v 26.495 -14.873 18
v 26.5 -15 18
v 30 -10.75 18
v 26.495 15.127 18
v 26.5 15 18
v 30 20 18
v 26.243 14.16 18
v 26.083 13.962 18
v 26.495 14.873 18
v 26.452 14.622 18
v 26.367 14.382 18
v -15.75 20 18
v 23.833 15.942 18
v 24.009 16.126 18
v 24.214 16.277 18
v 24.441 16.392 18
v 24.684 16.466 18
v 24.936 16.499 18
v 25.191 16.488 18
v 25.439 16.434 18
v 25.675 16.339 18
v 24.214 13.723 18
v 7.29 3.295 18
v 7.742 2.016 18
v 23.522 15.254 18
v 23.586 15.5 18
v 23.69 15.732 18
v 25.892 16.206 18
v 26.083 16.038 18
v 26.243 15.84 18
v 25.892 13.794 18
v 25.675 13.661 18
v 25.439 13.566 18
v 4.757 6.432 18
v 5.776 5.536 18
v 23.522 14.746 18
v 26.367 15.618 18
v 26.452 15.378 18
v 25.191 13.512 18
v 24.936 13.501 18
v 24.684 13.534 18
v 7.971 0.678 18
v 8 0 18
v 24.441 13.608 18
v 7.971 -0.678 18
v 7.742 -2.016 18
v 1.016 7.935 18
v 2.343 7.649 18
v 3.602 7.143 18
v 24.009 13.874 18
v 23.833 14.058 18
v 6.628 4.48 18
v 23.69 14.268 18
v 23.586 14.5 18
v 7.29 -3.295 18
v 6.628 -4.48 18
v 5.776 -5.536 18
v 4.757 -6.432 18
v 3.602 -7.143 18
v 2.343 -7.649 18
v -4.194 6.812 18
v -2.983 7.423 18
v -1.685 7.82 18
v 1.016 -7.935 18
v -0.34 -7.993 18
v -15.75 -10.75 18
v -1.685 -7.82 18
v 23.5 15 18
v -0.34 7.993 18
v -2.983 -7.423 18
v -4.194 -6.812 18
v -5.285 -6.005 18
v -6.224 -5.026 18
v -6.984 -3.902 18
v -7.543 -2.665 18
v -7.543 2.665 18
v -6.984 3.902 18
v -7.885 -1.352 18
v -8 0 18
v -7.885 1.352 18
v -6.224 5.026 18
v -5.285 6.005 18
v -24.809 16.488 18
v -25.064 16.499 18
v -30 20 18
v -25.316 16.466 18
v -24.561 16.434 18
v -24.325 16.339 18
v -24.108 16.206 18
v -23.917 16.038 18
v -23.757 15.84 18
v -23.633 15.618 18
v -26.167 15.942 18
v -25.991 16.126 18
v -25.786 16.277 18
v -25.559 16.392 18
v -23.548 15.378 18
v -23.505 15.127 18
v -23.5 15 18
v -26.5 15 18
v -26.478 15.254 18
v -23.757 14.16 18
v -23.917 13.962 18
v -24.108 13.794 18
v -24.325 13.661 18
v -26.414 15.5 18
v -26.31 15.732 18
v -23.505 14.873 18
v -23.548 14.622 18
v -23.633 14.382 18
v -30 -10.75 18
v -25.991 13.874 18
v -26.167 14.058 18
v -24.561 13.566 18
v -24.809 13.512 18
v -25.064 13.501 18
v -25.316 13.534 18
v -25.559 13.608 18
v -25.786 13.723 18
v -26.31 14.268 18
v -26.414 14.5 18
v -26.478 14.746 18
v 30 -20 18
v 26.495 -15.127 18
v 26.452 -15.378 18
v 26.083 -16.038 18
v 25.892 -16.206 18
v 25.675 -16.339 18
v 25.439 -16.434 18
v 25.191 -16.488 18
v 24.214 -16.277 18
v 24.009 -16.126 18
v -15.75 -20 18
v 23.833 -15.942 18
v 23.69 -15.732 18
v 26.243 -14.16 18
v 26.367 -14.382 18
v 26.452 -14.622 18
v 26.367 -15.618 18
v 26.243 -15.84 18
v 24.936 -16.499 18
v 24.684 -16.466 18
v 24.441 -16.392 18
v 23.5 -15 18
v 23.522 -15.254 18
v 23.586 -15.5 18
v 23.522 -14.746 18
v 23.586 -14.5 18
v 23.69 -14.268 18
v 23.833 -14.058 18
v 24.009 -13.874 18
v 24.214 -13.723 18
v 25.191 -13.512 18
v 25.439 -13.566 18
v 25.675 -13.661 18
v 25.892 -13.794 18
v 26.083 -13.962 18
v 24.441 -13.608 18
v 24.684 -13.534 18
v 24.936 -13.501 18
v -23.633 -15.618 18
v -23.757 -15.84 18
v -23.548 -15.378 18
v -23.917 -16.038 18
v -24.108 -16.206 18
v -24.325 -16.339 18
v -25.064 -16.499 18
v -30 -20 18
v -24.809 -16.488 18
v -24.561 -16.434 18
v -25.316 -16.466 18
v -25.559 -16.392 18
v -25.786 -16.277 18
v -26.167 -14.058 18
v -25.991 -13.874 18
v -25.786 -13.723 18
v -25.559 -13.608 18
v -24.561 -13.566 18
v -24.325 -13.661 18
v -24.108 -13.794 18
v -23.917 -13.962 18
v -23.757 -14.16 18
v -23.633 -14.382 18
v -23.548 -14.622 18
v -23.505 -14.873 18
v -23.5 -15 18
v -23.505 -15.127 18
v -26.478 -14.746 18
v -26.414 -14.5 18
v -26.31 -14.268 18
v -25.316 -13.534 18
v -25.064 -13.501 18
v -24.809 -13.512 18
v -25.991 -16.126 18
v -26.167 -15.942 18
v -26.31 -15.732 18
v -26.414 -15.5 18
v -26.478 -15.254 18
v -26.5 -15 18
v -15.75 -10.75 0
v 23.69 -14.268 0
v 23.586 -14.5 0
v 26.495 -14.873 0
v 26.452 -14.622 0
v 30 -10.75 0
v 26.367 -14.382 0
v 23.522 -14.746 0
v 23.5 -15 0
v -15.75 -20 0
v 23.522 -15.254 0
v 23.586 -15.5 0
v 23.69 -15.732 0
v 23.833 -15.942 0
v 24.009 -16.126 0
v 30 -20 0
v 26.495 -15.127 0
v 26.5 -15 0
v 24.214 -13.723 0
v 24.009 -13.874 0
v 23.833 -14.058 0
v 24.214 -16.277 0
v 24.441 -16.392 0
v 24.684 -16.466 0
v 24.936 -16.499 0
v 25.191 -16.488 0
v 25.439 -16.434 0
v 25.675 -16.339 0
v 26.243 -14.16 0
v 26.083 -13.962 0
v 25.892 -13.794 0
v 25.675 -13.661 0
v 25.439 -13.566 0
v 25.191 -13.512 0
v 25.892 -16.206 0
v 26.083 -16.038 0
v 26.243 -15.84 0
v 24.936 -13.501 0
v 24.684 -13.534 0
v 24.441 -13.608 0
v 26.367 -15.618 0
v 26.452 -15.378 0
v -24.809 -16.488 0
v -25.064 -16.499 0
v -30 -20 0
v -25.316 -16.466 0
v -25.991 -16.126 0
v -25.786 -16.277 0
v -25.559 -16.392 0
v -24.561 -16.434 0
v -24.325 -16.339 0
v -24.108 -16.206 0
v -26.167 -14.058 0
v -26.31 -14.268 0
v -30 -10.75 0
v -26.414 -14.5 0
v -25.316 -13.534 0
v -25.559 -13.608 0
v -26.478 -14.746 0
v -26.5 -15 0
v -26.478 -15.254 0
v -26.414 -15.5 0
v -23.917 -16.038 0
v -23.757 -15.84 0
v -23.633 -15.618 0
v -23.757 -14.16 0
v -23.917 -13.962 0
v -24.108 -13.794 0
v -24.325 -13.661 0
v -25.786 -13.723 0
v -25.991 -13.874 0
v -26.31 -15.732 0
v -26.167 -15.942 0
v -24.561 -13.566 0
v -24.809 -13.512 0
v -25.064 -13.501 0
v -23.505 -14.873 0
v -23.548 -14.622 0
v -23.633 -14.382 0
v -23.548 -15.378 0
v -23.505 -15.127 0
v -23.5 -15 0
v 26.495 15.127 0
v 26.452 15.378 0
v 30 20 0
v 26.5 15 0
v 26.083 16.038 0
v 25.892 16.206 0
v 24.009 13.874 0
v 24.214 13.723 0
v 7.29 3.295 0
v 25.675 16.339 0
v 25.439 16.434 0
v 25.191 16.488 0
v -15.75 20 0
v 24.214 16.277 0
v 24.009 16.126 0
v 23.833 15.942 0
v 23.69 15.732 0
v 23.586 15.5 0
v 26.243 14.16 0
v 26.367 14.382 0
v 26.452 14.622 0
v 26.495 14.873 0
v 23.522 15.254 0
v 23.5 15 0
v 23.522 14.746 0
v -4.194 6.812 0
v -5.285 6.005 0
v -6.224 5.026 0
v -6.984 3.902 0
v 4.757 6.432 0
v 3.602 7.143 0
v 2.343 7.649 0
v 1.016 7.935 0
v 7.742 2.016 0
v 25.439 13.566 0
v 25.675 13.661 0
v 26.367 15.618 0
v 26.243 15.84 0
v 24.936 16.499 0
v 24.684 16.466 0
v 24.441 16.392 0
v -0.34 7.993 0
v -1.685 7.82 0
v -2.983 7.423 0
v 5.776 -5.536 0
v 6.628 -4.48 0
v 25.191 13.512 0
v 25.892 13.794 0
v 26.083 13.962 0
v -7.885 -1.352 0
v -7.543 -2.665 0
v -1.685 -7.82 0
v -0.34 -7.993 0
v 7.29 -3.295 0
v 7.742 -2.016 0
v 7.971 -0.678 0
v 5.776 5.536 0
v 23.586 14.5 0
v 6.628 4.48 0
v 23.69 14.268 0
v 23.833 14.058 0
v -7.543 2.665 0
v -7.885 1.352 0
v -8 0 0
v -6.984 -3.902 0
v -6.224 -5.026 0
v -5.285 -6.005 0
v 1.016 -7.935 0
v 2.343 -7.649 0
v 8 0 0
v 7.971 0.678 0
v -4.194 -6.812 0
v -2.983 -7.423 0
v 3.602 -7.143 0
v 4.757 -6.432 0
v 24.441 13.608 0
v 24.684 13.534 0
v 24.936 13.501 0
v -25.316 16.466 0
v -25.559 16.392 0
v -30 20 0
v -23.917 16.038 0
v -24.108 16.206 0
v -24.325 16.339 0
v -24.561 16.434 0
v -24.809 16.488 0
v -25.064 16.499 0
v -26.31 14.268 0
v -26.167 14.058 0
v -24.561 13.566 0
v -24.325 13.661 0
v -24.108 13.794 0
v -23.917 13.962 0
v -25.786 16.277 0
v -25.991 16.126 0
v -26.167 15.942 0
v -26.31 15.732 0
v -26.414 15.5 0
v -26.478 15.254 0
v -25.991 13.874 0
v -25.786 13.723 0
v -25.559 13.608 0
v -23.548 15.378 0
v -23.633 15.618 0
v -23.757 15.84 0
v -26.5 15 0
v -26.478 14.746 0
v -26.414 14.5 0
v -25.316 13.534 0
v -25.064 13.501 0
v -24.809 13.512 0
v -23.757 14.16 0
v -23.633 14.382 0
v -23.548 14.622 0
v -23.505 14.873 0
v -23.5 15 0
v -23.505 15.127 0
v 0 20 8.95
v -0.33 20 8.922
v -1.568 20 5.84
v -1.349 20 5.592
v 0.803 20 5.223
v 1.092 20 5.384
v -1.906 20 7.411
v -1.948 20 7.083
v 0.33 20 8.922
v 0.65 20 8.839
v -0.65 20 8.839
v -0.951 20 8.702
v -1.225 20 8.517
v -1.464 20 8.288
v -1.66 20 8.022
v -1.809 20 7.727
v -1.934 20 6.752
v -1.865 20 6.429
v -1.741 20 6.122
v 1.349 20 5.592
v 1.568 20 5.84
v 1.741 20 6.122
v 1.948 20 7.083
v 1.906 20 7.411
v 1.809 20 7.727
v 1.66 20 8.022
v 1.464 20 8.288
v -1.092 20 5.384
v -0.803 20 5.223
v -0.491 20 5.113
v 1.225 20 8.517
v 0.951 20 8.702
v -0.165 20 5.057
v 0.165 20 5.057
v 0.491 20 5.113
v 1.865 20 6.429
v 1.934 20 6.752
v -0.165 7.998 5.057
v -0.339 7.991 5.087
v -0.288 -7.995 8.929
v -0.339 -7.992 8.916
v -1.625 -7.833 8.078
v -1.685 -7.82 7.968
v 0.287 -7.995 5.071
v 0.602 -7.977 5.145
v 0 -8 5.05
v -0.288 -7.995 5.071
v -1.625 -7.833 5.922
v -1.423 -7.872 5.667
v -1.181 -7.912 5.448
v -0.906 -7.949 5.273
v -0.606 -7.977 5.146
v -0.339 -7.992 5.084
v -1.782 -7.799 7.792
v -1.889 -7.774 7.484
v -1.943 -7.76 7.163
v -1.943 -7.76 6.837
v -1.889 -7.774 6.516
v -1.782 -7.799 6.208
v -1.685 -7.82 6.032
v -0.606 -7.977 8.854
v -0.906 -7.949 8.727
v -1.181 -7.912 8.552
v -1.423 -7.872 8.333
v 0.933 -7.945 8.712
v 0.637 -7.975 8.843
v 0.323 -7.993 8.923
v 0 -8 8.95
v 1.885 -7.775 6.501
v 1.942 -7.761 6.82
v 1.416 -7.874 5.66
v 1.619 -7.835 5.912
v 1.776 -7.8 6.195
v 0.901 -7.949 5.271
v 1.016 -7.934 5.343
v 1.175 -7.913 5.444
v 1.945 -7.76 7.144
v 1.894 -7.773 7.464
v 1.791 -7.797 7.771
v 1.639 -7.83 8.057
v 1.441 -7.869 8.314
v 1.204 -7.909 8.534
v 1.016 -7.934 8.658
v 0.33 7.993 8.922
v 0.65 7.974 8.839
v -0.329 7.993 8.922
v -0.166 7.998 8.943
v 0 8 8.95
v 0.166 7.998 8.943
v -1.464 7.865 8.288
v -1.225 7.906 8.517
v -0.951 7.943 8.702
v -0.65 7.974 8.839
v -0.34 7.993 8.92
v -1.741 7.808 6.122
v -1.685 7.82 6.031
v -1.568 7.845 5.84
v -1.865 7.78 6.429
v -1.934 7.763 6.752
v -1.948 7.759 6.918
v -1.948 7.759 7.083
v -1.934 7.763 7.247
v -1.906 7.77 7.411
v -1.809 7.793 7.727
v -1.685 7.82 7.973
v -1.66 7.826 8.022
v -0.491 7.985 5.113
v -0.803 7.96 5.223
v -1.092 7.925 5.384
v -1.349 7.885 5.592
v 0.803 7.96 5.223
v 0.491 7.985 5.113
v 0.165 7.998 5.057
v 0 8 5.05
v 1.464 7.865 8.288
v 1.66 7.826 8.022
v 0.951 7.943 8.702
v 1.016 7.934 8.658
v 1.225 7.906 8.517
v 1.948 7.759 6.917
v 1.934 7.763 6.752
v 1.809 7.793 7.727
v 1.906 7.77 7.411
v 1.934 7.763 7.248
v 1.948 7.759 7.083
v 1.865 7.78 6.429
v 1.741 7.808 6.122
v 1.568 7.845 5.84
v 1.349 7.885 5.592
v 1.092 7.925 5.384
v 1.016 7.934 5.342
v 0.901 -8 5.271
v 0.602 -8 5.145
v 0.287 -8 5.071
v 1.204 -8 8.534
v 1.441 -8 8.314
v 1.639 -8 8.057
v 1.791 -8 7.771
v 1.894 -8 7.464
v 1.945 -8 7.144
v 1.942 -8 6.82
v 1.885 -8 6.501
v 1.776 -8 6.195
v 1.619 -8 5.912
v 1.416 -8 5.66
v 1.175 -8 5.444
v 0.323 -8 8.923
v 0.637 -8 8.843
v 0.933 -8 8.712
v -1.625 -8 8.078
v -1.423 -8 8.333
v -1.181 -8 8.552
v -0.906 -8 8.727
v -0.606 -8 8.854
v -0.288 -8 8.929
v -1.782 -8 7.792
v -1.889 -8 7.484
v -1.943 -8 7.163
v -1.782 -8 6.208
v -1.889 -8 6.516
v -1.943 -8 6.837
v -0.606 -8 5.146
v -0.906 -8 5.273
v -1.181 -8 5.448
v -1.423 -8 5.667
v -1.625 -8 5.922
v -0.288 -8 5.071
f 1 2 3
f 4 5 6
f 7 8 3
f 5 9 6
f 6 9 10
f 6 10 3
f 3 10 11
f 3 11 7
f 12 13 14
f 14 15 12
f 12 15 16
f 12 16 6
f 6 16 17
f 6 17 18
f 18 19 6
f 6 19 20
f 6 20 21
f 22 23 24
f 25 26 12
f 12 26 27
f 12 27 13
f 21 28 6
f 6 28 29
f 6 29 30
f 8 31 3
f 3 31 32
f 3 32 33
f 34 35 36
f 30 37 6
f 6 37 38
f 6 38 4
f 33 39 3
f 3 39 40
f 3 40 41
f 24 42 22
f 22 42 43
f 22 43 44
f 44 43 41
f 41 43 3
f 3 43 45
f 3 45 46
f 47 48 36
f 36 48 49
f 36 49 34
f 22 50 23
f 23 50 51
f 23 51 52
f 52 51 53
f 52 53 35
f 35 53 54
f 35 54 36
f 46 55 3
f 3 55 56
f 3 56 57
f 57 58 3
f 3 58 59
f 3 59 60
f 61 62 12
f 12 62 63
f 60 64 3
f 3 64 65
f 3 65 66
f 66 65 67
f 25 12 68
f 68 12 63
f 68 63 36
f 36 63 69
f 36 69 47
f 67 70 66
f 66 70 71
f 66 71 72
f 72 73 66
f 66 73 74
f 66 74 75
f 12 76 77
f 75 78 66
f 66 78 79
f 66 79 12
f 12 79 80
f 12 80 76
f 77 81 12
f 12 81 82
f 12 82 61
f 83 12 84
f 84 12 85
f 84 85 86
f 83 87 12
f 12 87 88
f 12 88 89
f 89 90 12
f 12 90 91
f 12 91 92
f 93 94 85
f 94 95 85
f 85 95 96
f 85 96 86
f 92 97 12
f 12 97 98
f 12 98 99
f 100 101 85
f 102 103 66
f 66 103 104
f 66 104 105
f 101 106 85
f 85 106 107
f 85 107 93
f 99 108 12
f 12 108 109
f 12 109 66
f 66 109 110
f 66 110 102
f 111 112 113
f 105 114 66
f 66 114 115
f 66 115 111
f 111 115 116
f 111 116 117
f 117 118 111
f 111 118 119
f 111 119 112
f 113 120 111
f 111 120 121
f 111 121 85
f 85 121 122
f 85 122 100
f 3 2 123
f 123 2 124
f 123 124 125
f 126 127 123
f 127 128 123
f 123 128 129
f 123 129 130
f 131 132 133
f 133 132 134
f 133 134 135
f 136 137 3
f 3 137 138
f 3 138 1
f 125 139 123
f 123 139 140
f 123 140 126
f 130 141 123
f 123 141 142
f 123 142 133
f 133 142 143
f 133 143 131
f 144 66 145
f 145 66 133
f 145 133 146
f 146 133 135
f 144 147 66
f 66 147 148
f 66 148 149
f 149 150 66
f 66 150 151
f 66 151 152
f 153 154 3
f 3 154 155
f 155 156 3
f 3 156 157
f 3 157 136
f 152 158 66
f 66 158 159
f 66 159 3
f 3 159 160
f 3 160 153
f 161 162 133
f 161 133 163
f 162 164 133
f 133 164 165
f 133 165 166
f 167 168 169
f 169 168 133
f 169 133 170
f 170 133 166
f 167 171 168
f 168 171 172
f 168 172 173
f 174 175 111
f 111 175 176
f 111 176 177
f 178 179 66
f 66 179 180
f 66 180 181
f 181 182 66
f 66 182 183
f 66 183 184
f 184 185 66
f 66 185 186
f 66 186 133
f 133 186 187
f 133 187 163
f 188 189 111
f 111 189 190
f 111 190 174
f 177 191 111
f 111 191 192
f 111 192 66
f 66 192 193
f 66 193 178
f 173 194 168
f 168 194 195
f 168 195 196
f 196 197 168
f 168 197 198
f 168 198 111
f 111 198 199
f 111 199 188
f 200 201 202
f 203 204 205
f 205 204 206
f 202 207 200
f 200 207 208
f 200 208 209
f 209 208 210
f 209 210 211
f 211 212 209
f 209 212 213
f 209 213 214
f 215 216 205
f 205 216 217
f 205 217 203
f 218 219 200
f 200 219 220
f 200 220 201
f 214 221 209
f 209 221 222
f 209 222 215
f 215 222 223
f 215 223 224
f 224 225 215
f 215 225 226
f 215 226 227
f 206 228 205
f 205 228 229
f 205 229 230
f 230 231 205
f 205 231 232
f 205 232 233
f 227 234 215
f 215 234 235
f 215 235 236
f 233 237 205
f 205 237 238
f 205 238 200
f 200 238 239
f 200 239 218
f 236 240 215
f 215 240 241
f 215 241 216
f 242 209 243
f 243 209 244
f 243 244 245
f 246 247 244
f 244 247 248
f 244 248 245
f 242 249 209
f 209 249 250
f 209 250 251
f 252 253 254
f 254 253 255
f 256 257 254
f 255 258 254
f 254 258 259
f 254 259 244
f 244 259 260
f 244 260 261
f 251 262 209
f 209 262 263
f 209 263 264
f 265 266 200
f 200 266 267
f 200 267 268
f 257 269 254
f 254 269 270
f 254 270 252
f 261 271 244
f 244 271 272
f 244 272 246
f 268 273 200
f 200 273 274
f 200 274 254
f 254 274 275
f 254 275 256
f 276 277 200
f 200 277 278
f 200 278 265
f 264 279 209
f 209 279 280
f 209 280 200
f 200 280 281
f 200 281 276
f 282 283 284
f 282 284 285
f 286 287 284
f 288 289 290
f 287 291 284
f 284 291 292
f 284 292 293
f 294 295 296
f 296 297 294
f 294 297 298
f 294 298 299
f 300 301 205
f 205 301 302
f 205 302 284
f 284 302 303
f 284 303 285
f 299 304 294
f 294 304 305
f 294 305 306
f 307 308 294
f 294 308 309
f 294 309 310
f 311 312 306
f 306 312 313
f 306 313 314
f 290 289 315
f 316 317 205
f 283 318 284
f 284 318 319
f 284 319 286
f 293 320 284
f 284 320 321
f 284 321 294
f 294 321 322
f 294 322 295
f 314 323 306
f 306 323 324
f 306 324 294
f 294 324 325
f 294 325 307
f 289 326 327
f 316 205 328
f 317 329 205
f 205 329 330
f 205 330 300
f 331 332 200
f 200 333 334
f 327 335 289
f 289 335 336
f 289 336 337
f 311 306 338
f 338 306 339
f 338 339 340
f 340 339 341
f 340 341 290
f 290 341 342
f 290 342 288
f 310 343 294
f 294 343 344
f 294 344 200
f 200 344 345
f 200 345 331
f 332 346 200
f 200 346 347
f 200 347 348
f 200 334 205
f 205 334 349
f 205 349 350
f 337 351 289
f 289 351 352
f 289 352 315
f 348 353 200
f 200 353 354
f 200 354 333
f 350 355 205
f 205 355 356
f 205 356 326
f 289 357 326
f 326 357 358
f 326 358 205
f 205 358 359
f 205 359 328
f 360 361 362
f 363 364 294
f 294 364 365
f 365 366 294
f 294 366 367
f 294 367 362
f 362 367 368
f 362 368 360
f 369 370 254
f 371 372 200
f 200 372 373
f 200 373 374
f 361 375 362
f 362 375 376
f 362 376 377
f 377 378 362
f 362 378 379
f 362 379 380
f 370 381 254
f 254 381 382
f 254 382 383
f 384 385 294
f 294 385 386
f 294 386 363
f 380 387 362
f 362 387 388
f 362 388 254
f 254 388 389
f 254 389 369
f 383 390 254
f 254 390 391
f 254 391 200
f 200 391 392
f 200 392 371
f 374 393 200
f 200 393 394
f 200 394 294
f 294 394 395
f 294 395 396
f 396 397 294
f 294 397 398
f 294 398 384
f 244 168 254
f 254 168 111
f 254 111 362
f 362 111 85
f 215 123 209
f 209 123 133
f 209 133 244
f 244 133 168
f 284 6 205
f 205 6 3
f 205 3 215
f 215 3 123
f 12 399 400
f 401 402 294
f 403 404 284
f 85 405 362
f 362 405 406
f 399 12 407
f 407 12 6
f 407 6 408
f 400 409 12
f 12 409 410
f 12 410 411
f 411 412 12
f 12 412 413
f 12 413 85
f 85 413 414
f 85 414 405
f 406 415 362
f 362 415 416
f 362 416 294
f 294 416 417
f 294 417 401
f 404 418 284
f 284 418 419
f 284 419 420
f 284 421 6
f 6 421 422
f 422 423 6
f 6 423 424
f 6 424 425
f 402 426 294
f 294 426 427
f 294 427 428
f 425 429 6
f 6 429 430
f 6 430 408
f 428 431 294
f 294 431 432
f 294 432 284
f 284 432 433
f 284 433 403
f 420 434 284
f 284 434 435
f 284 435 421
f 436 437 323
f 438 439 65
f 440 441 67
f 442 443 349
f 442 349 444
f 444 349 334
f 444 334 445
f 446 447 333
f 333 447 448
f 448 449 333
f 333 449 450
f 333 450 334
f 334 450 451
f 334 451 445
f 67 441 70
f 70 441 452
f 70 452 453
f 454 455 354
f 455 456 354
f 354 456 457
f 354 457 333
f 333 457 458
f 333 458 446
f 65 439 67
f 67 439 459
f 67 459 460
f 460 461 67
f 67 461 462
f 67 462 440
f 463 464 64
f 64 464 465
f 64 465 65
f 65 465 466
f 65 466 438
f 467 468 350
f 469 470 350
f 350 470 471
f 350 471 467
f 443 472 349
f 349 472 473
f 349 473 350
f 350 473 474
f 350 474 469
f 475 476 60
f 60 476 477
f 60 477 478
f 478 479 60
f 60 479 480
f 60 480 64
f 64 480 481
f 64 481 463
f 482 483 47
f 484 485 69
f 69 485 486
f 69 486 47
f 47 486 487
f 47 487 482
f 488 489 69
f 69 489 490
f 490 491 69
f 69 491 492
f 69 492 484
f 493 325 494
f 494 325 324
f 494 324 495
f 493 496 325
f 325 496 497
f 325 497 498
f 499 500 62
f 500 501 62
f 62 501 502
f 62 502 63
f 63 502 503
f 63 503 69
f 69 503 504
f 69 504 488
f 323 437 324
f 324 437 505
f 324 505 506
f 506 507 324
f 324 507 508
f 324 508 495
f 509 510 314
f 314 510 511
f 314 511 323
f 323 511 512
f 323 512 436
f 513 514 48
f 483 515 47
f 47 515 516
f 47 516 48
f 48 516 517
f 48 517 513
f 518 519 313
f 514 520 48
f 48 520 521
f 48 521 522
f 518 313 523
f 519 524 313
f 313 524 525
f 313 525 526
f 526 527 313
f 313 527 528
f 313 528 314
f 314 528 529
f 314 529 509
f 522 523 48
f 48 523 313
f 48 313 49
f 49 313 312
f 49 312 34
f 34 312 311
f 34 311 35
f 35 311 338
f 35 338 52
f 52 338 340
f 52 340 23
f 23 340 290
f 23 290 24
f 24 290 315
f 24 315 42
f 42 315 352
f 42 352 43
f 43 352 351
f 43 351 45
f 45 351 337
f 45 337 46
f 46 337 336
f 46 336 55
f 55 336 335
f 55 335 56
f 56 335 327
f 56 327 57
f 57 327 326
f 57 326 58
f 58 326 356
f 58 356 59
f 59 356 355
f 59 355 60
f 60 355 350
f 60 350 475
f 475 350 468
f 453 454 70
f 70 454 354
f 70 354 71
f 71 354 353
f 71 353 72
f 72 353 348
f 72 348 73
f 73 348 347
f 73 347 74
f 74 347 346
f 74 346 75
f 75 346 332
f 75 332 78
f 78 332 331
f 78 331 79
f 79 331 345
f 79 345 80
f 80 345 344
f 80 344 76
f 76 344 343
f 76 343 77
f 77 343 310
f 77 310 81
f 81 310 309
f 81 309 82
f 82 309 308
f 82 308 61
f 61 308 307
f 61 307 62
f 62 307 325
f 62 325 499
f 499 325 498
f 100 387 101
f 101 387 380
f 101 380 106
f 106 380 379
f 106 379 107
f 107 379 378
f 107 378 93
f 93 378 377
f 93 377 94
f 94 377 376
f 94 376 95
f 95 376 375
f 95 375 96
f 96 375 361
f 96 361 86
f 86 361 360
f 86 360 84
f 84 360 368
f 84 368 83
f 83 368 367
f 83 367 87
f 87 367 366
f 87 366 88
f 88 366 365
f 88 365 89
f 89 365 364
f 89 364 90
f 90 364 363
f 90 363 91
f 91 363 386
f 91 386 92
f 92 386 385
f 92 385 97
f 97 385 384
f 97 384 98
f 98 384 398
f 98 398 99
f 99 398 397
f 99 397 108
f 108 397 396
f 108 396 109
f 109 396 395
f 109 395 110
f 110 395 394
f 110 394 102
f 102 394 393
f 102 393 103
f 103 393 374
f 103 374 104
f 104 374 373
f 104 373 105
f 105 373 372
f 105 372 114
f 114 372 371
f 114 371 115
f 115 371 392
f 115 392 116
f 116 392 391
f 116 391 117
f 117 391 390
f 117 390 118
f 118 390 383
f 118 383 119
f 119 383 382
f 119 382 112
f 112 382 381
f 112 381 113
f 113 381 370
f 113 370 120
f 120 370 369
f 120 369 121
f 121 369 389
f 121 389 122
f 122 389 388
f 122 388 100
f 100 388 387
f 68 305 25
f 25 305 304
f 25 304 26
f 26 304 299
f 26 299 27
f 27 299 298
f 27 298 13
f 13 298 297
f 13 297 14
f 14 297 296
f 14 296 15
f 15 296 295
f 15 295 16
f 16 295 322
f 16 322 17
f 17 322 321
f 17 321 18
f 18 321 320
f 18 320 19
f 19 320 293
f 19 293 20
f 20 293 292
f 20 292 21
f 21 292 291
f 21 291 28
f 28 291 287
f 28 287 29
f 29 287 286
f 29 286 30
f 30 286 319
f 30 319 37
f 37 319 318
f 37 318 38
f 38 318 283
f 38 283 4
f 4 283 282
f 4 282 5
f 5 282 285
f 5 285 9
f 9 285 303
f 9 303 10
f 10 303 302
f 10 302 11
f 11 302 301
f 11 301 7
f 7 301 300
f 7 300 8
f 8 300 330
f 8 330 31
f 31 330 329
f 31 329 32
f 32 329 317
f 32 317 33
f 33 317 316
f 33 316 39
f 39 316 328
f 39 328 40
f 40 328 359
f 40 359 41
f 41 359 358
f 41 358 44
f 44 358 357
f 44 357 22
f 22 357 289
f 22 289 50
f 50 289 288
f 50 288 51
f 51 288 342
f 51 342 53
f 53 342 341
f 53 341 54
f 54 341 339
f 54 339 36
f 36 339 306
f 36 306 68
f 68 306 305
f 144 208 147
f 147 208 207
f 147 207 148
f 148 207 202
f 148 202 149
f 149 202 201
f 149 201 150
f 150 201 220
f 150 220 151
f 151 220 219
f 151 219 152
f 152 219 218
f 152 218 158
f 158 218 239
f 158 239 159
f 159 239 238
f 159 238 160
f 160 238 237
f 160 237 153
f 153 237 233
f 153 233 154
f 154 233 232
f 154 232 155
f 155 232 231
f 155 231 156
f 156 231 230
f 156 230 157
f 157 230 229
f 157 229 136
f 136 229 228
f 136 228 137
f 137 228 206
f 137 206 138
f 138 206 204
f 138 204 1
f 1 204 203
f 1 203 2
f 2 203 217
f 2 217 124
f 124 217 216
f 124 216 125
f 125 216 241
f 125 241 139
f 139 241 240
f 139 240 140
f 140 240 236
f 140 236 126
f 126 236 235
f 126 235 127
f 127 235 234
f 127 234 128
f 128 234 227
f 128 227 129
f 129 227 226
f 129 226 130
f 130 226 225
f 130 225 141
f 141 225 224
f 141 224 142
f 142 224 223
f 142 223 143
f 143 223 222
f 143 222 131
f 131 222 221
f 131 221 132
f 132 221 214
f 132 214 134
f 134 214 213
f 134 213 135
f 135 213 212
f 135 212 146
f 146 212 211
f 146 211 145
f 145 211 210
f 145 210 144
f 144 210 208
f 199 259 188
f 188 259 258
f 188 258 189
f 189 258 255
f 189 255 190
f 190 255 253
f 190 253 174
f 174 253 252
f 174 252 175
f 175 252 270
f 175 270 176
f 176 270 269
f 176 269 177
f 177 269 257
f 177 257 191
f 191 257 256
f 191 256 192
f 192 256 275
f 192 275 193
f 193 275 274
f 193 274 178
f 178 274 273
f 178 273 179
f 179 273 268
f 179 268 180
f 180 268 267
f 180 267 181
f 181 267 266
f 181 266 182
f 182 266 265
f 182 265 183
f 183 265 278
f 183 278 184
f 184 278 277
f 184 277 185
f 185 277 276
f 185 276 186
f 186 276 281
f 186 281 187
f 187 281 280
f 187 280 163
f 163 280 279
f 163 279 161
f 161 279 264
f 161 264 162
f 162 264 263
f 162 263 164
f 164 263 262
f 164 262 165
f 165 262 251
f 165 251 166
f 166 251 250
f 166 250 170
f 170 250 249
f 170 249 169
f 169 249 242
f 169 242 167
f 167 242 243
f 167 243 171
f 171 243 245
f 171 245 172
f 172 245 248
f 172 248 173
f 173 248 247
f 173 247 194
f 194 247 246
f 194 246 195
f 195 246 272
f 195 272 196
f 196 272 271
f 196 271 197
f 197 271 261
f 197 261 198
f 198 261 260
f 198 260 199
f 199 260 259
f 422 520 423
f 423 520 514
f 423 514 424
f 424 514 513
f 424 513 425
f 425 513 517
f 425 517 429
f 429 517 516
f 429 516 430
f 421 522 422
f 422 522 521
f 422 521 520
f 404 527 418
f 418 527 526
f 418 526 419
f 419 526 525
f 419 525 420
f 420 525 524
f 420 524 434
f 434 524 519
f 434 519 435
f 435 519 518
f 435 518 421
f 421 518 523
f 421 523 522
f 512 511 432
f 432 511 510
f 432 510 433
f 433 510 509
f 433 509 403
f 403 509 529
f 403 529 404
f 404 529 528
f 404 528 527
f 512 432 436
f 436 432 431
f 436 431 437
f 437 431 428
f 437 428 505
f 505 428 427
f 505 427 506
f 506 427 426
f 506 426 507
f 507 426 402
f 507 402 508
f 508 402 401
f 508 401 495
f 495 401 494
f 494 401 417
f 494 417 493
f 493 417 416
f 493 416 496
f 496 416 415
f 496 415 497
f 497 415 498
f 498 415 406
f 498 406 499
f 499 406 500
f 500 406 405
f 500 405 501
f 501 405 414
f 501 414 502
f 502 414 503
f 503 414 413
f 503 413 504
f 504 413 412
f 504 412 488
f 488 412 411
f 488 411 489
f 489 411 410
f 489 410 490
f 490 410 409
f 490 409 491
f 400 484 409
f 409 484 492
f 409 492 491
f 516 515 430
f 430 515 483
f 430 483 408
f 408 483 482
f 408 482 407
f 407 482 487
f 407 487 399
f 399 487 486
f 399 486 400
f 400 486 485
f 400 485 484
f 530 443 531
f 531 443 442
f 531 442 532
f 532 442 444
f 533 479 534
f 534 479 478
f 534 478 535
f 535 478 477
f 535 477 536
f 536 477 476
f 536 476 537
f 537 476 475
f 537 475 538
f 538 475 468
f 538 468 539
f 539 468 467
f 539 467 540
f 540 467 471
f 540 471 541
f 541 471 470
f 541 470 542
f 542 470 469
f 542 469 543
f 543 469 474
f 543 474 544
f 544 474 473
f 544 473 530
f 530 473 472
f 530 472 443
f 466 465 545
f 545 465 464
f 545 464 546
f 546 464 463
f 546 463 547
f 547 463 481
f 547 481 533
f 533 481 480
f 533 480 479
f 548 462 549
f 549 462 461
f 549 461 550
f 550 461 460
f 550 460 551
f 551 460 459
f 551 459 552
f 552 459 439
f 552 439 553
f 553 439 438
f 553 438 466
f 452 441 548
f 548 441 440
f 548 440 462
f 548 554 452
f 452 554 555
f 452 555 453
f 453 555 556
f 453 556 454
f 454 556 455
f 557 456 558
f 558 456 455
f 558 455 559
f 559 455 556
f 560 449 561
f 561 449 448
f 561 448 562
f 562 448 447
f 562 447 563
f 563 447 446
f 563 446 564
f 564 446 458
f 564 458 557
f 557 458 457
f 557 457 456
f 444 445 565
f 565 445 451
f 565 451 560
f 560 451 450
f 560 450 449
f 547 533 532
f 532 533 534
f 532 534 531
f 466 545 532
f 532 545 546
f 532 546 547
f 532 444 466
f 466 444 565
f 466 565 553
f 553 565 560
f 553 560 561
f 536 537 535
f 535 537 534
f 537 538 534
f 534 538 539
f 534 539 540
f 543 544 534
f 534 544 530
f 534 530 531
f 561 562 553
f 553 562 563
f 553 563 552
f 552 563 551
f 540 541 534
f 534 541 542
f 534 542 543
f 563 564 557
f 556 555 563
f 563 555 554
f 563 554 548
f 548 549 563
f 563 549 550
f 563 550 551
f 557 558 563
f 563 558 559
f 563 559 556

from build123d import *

# Parameters (mm, degrees)
IZIM1_W                     = 60
IZIM1_H                     = 40
IZIM1_R                     = 1.5
IZIM1_R_2                   = 8
Y_KSEKLIK_EKSTR_ZYON1_DEPTH = 18
IZIM2_R                     = 1.95
KES_EKSTR_ZYON1_DEPTH       = 28


with BuildPart() as part:
    # Çizim1 → Yükseklik-Ekstrüzyon1 (new body)
    with BuildSketch(Plane.XY):
        Rectangle(IZIM1_W, IZIM1_H)
        with Locations((-25, 15)):
            Circle(IZIM1_R, mode=Mode.SUBTRACT)
        Circle(IZIM1_R_2, mode=Mode.SUBTRACT)
        with Locations((25, 15)):
            Circle(IZIM1_R, mode=Mode.SUBTRACT)
        with Locations((25, -15)):
            Circle(IZIM1_R, mode=Mode.SUBTRACT)
        with Locations((-25, -15)):
            Circle(IZIM1_R, mode=Mode.SUBTRACT)
    extrude(amount=Y_KSEKLIK_EKSTR_ZYON1_DEPTH)

    # Çizim2 → Kes-Ekstrüzyon1 (cut)
    with BuildSketch(Plane(origin=(0, 20, 0), x_dir=(1, 0, 0), z_dir=(0, 1, 0))):
        with Locations(Location((0, -7, 0), (0, 0, 270))):
            Circle(IZIM2_R)
    extrude(amount=-KES_EKSTR_ZYON1_DEPTH, mode=Mode.SUBTRACT)


solid = part.part
